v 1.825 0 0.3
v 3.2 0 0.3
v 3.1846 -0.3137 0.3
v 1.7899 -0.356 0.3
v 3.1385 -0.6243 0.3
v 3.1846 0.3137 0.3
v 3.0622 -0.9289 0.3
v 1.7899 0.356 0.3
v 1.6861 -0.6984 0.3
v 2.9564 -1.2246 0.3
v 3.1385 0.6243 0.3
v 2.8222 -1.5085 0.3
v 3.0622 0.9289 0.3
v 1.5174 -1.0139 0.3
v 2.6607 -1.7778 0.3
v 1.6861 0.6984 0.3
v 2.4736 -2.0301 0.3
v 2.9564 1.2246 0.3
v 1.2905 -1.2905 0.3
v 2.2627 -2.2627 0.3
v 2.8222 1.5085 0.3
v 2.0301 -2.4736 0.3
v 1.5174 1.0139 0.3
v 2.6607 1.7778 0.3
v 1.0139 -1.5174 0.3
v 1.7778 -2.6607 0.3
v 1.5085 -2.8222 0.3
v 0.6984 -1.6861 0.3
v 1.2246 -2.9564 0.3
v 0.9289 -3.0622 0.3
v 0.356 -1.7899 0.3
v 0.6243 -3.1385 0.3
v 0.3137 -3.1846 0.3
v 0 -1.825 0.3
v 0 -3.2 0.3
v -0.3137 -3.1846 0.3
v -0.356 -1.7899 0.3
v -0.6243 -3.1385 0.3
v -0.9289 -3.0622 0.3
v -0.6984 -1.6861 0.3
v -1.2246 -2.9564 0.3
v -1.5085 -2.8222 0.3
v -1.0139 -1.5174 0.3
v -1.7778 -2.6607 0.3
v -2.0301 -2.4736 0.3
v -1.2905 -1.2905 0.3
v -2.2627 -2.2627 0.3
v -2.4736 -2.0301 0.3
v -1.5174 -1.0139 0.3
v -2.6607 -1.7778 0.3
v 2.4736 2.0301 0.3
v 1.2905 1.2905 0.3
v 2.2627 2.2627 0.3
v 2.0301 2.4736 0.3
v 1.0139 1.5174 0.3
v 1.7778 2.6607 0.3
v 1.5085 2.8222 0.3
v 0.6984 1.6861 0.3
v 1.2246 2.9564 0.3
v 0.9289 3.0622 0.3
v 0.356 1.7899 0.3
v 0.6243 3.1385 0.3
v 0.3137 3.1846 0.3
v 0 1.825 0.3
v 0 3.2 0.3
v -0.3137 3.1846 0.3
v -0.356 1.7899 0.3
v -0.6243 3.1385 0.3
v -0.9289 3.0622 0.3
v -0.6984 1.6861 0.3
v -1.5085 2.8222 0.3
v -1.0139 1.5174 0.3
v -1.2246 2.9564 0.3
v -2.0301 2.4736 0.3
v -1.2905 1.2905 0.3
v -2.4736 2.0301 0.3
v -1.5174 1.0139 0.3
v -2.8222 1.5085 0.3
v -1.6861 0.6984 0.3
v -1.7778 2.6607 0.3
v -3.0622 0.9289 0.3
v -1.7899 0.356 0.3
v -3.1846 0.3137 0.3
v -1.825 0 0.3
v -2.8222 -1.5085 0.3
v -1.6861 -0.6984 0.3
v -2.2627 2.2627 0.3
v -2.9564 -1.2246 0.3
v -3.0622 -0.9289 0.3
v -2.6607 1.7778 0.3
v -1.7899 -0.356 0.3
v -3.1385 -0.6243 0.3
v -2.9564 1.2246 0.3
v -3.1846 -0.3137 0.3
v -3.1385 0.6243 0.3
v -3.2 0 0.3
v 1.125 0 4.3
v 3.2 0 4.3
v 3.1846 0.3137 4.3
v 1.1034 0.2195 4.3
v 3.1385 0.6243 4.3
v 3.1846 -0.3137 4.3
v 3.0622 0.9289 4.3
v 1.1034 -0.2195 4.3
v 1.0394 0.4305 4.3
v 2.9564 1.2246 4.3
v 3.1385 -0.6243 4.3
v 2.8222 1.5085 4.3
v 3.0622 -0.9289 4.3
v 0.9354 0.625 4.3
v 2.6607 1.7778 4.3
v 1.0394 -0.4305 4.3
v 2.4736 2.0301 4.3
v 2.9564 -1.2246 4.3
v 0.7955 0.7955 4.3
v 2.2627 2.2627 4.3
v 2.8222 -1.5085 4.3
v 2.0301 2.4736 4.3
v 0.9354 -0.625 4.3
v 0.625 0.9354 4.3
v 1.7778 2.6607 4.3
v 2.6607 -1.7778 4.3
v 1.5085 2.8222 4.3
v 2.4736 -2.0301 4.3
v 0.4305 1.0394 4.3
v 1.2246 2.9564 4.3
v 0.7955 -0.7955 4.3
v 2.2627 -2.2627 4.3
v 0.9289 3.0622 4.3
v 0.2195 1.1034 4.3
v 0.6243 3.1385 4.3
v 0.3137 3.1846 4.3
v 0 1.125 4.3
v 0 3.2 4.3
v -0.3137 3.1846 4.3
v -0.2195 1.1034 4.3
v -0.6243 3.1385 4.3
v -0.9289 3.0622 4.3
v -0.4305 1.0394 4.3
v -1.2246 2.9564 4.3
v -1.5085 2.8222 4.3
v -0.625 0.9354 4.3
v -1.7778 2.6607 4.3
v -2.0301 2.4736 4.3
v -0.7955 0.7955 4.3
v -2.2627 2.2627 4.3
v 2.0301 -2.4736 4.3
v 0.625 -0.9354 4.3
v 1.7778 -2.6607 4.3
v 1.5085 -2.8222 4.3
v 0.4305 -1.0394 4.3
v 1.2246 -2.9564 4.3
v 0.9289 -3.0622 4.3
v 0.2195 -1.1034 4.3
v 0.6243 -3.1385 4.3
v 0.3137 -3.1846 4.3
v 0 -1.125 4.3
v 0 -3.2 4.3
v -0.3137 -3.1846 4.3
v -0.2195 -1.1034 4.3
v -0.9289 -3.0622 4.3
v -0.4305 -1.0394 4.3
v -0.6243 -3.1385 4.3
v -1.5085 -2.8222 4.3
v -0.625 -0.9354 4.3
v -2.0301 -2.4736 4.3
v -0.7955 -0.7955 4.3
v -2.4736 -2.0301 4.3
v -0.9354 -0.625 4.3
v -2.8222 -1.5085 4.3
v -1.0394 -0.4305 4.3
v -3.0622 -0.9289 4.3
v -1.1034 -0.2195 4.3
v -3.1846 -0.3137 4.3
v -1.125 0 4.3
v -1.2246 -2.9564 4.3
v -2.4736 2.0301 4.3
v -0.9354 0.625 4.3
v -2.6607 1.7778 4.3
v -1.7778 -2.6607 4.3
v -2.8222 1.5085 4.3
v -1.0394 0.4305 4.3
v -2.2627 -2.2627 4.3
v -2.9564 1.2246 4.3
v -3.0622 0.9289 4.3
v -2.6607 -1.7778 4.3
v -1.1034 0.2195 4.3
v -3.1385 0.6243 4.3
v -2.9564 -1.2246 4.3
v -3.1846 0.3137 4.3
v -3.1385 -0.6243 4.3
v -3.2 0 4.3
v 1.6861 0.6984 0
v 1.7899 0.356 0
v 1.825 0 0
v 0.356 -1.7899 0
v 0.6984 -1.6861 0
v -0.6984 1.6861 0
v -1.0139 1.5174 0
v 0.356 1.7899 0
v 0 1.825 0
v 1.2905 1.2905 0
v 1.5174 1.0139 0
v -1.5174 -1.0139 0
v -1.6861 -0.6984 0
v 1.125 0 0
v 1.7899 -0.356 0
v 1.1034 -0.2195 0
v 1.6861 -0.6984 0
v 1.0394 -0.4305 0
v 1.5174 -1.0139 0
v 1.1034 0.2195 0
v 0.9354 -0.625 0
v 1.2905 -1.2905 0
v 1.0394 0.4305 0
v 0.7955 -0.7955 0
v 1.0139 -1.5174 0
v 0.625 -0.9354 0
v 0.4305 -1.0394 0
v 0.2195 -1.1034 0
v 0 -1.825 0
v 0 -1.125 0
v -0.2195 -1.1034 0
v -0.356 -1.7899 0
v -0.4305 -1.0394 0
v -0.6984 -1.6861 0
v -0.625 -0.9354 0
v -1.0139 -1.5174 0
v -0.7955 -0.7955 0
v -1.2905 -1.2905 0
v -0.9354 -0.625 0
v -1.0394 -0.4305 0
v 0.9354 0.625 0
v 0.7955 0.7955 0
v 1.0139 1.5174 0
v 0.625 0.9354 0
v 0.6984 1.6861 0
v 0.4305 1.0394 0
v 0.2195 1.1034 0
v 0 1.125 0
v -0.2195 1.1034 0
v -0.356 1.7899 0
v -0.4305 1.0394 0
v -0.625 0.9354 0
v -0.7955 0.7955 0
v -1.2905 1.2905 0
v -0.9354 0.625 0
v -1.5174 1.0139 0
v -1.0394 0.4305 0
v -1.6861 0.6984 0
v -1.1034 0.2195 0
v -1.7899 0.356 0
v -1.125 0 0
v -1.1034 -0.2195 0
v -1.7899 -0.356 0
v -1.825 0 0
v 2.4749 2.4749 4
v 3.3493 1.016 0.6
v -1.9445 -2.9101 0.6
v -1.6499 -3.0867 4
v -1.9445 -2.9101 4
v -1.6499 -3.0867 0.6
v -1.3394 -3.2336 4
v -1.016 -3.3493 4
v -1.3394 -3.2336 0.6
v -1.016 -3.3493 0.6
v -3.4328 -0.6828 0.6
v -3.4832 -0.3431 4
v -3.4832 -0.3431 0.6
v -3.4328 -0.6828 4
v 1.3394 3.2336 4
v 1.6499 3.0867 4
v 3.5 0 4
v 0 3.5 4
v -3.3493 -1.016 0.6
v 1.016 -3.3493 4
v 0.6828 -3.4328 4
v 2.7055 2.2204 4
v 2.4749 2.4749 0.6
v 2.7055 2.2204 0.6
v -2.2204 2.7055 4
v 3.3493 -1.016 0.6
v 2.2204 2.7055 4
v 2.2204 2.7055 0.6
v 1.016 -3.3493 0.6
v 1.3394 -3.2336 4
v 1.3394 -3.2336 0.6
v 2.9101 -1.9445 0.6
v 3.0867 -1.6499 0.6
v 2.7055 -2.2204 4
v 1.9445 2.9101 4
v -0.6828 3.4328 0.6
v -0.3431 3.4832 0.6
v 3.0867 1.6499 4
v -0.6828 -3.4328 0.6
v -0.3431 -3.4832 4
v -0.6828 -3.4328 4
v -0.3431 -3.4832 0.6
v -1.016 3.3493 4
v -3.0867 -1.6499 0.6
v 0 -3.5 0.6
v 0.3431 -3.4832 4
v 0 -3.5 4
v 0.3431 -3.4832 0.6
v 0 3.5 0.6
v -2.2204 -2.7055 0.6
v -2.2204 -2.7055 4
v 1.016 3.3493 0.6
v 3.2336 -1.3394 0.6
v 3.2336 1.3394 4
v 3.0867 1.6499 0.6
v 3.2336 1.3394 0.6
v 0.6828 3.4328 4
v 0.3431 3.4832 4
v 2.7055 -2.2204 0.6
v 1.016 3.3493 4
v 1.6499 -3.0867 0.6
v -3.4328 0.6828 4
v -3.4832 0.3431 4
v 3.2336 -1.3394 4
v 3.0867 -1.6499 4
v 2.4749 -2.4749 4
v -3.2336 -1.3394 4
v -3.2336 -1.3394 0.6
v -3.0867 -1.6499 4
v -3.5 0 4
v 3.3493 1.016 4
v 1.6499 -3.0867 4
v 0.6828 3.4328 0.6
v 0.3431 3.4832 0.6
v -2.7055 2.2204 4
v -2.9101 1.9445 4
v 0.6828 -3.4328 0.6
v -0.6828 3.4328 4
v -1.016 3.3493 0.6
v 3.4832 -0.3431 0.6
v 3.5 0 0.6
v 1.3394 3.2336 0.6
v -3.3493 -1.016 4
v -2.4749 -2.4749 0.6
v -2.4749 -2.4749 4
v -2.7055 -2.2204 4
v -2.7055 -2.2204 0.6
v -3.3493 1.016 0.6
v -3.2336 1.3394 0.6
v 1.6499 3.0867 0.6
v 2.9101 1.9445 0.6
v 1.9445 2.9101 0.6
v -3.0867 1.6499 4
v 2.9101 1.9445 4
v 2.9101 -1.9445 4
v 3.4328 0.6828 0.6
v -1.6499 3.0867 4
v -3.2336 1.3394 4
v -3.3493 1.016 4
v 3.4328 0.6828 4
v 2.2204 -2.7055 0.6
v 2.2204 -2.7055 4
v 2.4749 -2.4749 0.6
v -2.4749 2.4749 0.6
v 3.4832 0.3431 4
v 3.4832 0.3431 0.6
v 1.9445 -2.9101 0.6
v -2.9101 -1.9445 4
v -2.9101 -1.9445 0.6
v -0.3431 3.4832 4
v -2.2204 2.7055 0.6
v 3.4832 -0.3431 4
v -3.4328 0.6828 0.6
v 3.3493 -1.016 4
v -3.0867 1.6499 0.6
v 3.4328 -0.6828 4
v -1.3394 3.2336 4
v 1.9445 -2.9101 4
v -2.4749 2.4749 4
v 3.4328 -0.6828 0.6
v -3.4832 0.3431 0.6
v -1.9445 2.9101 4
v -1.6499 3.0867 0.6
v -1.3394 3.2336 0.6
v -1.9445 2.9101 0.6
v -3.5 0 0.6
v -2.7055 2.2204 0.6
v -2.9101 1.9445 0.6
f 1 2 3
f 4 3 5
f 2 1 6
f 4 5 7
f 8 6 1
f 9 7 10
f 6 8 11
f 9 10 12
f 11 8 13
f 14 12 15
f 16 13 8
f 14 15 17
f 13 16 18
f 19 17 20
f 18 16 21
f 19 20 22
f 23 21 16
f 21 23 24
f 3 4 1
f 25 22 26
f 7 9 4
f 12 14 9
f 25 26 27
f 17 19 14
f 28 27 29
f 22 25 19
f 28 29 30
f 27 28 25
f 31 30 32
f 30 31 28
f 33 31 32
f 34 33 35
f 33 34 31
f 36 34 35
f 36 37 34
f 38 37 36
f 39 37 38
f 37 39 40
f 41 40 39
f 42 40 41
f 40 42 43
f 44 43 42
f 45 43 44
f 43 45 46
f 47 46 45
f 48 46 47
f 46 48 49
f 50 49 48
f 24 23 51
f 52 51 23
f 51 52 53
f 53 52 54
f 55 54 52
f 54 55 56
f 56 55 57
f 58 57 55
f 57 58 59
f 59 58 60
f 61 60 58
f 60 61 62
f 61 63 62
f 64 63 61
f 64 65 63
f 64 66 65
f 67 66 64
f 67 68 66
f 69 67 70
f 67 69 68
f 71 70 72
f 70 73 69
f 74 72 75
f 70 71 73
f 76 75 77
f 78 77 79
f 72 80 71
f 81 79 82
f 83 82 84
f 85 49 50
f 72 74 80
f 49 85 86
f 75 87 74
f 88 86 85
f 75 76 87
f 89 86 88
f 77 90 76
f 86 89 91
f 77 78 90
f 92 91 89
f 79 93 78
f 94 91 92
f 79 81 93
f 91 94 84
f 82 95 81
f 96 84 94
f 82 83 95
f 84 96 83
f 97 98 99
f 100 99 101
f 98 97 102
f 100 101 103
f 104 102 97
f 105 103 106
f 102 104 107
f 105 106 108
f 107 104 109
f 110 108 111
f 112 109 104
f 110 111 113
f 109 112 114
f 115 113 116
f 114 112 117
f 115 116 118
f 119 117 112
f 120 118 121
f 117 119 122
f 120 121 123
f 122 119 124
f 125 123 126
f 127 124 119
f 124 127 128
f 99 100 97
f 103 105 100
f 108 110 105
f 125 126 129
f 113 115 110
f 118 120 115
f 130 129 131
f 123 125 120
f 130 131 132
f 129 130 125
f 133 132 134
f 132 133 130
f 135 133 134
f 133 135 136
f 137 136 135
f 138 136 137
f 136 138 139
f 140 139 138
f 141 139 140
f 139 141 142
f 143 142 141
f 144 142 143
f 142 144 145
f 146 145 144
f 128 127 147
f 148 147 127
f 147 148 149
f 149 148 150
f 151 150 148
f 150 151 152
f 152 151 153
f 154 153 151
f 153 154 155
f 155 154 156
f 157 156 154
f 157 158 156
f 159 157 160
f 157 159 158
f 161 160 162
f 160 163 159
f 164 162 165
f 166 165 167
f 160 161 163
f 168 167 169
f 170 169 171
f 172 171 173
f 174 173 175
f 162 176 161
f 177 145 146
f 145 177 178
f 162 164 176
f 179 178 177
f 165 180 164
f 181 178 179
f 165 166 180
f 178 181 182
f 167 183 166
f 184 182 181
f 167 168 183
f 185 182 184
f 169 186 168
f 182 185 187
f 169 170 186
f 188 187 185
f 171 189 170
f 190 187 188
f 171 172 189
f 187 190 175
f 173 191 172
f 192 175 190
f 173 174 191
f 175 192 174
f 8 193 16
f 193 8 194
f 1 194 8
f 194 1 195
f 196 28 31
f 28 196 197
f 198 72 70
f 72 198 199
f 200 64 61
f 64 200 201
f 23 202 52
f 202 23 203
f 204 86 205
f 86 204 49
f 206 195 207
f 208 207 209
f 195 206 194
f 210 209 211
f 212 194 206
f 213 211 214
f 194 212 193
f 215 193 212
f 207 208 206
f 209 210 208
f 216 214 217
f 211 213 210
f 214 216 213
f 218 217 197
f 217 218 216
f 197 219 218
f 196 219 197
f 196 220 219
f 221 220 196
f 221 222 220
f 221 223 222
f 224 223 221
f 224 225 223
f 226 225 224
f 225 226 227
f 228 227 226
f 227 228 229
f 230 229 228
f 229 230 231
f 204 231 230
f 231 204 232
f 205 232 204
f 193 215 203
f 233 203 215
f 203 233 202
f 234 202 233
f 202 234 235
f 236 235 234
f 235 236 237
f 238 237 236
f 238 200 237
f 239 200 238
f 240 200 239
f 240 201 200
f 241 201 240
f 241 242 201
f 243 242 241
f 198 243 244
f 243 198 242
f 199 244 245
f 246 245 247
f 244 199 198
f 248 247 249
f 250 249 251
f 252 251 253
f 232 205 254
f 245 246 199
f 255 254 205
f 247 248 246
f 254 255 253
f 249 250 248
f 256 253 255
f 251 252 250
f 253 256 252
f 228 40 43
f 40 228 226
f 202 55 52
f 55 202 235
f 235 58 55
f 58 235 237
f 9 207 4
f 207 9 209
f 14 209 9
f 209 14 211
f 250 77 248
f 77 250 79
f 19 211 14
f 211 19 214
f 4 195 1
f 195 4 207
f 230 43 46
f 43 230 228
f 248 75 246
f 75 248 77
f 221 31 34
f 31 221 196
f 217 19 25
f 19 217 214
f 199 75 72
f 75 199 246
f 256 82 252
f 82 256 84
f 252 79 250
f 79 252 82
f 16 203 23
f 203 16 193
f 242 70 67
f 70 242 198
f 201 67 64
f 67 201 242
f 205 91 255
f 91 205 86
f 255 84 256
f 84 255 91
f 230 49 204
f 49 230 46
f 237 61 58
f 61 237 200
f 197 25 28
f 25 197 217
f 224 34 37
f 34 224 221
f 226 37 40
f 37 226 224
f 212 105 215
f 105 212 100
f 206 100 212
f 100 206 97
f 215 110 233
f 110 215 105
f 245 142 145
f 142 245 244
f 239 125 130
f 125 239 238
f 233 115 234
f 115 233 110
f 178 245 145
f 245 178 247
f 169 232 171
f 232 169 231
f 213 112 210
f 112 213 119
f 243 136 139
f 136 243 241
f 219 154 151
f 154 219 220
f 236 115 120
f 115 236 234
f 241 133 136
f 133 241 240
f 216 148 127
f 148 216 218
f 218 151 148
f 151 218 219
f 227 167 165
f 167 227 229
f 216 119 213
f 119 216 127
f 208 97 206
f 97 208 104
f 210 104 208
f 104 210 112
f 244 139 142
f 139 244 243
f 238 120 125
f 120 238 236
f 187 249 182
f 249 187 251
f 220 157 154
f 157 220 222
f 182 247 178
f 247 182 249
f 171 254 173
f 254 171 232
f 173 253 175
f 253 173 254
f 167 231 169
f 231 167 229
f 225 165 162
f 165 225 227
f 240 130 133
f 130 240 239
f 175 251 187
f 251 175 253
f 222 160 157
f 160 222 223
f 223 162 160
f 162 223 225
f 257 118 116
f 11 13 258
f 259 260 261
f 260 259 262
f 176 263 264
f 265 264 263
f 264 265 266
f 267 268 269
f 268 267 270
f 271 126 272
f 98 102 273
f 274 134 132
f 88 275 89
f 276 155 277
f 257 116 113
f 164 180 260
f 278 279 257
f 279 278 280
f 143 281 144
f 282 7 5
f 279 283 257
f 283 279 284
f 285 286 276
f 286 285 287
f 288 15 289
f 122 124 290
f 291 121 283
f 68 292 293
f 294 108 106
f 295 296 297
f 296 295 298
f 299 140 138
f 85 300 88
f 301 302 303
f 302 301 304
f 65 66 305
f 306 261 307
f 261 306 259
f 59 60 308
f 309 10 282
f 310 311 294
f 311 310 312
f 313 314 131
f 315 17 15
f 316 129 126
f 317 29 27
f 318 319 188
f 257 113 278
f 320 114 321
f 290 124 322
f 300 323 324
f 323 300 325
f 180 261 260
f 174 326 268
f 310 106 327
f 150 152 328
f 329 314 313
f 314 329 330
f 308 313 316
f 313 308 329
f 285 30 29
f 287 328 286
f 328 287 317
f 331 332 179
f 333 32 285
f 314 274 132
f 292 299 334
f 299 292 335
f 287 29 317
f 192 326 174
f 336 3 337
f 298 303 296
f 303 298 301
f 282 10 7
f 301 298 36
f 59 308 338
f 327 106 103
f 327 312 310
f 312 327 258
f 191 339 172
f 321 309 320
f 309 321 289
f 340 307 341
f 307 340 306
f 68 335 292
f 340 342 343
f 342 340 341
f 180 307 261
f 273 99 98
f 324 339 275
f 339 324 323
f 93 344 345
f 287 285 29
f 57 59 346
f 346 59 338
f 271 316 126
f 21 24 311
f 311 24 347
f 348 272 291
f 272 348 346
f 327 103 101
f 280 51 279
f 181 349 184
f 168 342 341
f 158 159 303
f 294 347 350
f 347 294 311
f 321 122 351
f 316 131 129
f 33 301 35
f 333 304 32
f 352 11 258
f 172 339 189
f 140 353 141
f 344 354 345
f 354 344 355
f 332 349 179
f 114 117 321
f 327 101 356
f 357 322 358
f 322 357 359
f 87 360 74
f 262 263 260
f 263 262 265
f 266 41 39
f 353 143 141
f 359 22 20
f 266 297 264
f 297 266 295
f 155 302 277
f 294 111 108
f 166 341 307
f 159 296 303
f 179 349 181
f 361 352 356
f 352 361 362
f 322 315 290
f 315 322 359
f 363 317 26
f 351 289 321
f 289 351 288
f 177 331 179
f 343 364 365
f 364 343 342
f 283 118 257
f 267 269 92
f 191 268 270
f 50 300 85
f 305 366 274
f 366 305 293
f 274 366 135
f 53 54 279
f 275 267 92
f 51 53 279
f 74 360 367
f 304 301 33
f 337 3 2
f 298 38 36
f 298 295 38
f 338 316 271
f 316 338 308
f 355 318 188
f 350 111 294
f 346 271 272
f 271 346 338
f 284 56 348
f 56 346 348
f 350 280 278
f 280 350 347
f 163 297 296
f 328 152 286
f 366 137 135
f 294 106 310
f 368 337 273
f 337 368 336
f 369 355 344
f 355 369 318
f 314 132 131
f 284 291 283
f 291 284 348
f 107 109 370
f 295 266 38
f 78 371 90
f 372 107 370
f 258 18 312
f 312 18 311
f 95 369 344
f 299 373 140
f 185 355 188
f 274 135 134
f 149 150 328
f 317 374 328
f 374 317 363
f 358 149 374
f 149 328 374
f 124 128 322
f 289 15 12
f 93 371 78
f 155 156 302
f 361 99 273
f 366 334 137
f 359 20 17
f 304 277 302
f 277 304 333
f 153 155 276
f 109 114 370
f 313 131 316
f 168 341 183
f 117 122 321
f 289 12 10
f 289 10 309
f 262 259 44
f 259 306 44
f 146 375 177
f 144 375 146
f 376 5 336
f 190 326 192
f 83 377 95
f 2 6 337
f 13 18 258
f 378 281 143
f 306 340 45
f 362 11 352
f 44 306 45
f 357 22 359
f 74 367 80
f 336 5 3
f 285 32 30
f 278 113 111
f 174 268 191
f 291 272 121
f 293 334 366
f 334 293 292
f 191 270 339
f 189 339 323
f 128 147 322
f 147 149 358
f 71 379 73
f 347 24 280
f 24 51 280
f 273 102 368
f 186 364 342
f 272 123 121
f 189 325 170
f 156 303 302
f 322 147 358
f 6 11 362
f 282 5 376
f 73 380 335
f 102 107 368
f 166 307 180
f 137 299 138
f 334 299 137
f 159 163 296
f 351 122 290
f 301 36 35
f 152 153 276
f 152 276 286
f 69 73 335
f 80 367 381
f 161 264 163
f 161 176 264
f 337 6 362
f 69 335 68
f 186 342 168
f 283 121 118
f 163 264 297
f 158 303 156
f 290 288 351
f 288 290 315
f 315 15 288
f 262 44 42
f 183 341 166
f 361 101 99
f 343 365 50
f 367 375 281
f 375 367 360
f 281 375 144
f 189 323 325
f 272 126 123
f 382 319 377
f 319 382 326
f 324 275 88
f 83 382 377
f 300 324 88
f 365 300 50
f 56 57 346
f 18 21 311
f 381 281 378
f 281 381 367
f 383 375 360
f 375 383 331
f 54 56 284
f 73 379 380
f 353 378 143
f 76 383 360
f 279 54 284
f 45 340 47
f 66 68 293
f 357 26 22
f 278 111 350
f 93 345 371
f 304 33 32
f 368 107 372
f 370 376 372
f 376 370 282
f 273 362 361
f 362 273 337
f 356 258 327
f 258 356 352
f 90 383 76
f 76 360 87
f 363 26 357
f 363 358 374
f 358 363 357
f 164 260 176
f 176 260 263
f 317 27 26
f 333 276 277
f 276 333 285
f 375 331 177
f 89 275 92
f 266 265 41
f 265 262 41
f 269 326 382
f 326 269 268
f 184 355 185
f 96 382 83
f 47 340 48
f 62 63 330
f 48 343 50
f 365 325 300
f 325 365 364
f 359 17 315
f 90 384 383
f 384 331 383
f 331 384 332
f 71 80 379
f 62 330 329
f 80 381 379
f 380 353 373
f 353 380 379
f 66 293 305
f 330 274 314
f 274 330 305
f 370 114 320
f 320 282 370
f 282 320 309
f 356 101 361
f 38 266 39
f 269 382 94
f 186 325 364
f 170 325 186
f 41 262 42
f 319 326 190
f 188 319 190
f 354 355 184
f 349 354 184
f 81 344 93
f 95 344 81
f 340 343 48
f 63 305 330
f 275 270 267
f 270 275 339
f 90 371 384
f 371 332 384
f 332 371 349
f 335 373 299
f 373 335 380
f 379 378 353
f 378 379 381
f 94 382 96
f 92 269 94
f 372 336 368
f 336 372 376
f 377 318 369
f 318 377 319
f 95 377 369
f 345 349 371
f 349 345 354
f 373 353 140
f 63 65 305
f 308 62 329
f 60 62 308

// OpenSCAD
// file: params.scad
// Shared dimensions (mm). Edit here, then re-export STLs.

// Deck
deck_len       = 96;
deck_w         = 34;
deck_t         = 3.0;   // printed decks need to be a bit thicker than wood
wheelbase      = 45;    // distance between the inner truck holes
concave_depth  = 1.5;
kick_angle     = 20;
kick_start     = 34;    // distance from deck center where the kicks begin to bend
kick_bend      = 8;     // length of the curved transition into the kick

// Truck mounting holes (Tech Deck pattern; measure your trucks to confirm)
hole_dx        = 8;     // spacing along the deck
hole_dy        = 5;     // spacing across the deck
deck_hole_d    = 1.8;   // clearance for the Tech Deck screws
plate_hole_d   = 1.4;   // pilot hole so the screws thread straight into the baseplate

// Grip texture
grip           = true;
grip_pitch     = 1.2;
grip_depth     = 0.25;

// Truck
truck_w        = 34;    // outer edge to outer edge of the wheels
kp_angle       = 40;    // kingpin and pivot tilt from vertical
kp_d           = 2.4;   // printed kingpin pin diameter
axle_d         = 2.0;
axle_z         = -8.6;  // axle center below the deck's bottom face
bushing_d      = 4.6;
bushing_h      = 1.5;

// Wheels
wheel_d        = 7.0;
wheel_w        = 4.0;
tire_t         = 0.6;   // TPU 68D tire thickness
wheel_gap      = 0.3;   // clearance between the hanger and the wheel

// Fit tolerances (tune after a test print)
press_fit      = 0.10;  // interference for the kingpin pin and axle caps
spin_fit       = 0.25;  // clearance for the wheel bore
// main file
// 7mm street wheel.
// part = "solid" (default: one-piece TPU 68D) | "core" + "tire" (two-material version: PETG core + TPU 68D tire)
include <params.scad>
part = "solid";
core_d = wheel_d - 2 * tire_t;
bore   = axle_d + spin_fit;

module core() difference() {
  union() {
    cylinder(d = core_d, h = wheel_w, $fn = 64);
    translate([0, 0, -0.3]) cylinder(d = bore + 1.4, h = 0.3, $fn = 32);   // inner hub so the wheel doesn't rub the hanger
  }
  translate([0, 0, -1]) cylinder(d = bore, h = wheel_w + 2, $fn = 32);
}
module tire() difference() {
  hull() {
    translate([0, 0, 0.3]) cylinder(d = wheel_d, h = wheel_w - 0.6, $fn = 64);
    cylinder(d = wheel_d - 0.6, h = wheel_w, $fn = 64);
  }
  translate([0, 0, -1]) cylinder(d = core_d, h = wheel_w + 2, $fn = 64);
}
translate([0, 0, 0.3]) {
  if (part == "solid") union() { core(); tire(); }
  if (part == "core") core();
  if (part == "tire") tire();
}
